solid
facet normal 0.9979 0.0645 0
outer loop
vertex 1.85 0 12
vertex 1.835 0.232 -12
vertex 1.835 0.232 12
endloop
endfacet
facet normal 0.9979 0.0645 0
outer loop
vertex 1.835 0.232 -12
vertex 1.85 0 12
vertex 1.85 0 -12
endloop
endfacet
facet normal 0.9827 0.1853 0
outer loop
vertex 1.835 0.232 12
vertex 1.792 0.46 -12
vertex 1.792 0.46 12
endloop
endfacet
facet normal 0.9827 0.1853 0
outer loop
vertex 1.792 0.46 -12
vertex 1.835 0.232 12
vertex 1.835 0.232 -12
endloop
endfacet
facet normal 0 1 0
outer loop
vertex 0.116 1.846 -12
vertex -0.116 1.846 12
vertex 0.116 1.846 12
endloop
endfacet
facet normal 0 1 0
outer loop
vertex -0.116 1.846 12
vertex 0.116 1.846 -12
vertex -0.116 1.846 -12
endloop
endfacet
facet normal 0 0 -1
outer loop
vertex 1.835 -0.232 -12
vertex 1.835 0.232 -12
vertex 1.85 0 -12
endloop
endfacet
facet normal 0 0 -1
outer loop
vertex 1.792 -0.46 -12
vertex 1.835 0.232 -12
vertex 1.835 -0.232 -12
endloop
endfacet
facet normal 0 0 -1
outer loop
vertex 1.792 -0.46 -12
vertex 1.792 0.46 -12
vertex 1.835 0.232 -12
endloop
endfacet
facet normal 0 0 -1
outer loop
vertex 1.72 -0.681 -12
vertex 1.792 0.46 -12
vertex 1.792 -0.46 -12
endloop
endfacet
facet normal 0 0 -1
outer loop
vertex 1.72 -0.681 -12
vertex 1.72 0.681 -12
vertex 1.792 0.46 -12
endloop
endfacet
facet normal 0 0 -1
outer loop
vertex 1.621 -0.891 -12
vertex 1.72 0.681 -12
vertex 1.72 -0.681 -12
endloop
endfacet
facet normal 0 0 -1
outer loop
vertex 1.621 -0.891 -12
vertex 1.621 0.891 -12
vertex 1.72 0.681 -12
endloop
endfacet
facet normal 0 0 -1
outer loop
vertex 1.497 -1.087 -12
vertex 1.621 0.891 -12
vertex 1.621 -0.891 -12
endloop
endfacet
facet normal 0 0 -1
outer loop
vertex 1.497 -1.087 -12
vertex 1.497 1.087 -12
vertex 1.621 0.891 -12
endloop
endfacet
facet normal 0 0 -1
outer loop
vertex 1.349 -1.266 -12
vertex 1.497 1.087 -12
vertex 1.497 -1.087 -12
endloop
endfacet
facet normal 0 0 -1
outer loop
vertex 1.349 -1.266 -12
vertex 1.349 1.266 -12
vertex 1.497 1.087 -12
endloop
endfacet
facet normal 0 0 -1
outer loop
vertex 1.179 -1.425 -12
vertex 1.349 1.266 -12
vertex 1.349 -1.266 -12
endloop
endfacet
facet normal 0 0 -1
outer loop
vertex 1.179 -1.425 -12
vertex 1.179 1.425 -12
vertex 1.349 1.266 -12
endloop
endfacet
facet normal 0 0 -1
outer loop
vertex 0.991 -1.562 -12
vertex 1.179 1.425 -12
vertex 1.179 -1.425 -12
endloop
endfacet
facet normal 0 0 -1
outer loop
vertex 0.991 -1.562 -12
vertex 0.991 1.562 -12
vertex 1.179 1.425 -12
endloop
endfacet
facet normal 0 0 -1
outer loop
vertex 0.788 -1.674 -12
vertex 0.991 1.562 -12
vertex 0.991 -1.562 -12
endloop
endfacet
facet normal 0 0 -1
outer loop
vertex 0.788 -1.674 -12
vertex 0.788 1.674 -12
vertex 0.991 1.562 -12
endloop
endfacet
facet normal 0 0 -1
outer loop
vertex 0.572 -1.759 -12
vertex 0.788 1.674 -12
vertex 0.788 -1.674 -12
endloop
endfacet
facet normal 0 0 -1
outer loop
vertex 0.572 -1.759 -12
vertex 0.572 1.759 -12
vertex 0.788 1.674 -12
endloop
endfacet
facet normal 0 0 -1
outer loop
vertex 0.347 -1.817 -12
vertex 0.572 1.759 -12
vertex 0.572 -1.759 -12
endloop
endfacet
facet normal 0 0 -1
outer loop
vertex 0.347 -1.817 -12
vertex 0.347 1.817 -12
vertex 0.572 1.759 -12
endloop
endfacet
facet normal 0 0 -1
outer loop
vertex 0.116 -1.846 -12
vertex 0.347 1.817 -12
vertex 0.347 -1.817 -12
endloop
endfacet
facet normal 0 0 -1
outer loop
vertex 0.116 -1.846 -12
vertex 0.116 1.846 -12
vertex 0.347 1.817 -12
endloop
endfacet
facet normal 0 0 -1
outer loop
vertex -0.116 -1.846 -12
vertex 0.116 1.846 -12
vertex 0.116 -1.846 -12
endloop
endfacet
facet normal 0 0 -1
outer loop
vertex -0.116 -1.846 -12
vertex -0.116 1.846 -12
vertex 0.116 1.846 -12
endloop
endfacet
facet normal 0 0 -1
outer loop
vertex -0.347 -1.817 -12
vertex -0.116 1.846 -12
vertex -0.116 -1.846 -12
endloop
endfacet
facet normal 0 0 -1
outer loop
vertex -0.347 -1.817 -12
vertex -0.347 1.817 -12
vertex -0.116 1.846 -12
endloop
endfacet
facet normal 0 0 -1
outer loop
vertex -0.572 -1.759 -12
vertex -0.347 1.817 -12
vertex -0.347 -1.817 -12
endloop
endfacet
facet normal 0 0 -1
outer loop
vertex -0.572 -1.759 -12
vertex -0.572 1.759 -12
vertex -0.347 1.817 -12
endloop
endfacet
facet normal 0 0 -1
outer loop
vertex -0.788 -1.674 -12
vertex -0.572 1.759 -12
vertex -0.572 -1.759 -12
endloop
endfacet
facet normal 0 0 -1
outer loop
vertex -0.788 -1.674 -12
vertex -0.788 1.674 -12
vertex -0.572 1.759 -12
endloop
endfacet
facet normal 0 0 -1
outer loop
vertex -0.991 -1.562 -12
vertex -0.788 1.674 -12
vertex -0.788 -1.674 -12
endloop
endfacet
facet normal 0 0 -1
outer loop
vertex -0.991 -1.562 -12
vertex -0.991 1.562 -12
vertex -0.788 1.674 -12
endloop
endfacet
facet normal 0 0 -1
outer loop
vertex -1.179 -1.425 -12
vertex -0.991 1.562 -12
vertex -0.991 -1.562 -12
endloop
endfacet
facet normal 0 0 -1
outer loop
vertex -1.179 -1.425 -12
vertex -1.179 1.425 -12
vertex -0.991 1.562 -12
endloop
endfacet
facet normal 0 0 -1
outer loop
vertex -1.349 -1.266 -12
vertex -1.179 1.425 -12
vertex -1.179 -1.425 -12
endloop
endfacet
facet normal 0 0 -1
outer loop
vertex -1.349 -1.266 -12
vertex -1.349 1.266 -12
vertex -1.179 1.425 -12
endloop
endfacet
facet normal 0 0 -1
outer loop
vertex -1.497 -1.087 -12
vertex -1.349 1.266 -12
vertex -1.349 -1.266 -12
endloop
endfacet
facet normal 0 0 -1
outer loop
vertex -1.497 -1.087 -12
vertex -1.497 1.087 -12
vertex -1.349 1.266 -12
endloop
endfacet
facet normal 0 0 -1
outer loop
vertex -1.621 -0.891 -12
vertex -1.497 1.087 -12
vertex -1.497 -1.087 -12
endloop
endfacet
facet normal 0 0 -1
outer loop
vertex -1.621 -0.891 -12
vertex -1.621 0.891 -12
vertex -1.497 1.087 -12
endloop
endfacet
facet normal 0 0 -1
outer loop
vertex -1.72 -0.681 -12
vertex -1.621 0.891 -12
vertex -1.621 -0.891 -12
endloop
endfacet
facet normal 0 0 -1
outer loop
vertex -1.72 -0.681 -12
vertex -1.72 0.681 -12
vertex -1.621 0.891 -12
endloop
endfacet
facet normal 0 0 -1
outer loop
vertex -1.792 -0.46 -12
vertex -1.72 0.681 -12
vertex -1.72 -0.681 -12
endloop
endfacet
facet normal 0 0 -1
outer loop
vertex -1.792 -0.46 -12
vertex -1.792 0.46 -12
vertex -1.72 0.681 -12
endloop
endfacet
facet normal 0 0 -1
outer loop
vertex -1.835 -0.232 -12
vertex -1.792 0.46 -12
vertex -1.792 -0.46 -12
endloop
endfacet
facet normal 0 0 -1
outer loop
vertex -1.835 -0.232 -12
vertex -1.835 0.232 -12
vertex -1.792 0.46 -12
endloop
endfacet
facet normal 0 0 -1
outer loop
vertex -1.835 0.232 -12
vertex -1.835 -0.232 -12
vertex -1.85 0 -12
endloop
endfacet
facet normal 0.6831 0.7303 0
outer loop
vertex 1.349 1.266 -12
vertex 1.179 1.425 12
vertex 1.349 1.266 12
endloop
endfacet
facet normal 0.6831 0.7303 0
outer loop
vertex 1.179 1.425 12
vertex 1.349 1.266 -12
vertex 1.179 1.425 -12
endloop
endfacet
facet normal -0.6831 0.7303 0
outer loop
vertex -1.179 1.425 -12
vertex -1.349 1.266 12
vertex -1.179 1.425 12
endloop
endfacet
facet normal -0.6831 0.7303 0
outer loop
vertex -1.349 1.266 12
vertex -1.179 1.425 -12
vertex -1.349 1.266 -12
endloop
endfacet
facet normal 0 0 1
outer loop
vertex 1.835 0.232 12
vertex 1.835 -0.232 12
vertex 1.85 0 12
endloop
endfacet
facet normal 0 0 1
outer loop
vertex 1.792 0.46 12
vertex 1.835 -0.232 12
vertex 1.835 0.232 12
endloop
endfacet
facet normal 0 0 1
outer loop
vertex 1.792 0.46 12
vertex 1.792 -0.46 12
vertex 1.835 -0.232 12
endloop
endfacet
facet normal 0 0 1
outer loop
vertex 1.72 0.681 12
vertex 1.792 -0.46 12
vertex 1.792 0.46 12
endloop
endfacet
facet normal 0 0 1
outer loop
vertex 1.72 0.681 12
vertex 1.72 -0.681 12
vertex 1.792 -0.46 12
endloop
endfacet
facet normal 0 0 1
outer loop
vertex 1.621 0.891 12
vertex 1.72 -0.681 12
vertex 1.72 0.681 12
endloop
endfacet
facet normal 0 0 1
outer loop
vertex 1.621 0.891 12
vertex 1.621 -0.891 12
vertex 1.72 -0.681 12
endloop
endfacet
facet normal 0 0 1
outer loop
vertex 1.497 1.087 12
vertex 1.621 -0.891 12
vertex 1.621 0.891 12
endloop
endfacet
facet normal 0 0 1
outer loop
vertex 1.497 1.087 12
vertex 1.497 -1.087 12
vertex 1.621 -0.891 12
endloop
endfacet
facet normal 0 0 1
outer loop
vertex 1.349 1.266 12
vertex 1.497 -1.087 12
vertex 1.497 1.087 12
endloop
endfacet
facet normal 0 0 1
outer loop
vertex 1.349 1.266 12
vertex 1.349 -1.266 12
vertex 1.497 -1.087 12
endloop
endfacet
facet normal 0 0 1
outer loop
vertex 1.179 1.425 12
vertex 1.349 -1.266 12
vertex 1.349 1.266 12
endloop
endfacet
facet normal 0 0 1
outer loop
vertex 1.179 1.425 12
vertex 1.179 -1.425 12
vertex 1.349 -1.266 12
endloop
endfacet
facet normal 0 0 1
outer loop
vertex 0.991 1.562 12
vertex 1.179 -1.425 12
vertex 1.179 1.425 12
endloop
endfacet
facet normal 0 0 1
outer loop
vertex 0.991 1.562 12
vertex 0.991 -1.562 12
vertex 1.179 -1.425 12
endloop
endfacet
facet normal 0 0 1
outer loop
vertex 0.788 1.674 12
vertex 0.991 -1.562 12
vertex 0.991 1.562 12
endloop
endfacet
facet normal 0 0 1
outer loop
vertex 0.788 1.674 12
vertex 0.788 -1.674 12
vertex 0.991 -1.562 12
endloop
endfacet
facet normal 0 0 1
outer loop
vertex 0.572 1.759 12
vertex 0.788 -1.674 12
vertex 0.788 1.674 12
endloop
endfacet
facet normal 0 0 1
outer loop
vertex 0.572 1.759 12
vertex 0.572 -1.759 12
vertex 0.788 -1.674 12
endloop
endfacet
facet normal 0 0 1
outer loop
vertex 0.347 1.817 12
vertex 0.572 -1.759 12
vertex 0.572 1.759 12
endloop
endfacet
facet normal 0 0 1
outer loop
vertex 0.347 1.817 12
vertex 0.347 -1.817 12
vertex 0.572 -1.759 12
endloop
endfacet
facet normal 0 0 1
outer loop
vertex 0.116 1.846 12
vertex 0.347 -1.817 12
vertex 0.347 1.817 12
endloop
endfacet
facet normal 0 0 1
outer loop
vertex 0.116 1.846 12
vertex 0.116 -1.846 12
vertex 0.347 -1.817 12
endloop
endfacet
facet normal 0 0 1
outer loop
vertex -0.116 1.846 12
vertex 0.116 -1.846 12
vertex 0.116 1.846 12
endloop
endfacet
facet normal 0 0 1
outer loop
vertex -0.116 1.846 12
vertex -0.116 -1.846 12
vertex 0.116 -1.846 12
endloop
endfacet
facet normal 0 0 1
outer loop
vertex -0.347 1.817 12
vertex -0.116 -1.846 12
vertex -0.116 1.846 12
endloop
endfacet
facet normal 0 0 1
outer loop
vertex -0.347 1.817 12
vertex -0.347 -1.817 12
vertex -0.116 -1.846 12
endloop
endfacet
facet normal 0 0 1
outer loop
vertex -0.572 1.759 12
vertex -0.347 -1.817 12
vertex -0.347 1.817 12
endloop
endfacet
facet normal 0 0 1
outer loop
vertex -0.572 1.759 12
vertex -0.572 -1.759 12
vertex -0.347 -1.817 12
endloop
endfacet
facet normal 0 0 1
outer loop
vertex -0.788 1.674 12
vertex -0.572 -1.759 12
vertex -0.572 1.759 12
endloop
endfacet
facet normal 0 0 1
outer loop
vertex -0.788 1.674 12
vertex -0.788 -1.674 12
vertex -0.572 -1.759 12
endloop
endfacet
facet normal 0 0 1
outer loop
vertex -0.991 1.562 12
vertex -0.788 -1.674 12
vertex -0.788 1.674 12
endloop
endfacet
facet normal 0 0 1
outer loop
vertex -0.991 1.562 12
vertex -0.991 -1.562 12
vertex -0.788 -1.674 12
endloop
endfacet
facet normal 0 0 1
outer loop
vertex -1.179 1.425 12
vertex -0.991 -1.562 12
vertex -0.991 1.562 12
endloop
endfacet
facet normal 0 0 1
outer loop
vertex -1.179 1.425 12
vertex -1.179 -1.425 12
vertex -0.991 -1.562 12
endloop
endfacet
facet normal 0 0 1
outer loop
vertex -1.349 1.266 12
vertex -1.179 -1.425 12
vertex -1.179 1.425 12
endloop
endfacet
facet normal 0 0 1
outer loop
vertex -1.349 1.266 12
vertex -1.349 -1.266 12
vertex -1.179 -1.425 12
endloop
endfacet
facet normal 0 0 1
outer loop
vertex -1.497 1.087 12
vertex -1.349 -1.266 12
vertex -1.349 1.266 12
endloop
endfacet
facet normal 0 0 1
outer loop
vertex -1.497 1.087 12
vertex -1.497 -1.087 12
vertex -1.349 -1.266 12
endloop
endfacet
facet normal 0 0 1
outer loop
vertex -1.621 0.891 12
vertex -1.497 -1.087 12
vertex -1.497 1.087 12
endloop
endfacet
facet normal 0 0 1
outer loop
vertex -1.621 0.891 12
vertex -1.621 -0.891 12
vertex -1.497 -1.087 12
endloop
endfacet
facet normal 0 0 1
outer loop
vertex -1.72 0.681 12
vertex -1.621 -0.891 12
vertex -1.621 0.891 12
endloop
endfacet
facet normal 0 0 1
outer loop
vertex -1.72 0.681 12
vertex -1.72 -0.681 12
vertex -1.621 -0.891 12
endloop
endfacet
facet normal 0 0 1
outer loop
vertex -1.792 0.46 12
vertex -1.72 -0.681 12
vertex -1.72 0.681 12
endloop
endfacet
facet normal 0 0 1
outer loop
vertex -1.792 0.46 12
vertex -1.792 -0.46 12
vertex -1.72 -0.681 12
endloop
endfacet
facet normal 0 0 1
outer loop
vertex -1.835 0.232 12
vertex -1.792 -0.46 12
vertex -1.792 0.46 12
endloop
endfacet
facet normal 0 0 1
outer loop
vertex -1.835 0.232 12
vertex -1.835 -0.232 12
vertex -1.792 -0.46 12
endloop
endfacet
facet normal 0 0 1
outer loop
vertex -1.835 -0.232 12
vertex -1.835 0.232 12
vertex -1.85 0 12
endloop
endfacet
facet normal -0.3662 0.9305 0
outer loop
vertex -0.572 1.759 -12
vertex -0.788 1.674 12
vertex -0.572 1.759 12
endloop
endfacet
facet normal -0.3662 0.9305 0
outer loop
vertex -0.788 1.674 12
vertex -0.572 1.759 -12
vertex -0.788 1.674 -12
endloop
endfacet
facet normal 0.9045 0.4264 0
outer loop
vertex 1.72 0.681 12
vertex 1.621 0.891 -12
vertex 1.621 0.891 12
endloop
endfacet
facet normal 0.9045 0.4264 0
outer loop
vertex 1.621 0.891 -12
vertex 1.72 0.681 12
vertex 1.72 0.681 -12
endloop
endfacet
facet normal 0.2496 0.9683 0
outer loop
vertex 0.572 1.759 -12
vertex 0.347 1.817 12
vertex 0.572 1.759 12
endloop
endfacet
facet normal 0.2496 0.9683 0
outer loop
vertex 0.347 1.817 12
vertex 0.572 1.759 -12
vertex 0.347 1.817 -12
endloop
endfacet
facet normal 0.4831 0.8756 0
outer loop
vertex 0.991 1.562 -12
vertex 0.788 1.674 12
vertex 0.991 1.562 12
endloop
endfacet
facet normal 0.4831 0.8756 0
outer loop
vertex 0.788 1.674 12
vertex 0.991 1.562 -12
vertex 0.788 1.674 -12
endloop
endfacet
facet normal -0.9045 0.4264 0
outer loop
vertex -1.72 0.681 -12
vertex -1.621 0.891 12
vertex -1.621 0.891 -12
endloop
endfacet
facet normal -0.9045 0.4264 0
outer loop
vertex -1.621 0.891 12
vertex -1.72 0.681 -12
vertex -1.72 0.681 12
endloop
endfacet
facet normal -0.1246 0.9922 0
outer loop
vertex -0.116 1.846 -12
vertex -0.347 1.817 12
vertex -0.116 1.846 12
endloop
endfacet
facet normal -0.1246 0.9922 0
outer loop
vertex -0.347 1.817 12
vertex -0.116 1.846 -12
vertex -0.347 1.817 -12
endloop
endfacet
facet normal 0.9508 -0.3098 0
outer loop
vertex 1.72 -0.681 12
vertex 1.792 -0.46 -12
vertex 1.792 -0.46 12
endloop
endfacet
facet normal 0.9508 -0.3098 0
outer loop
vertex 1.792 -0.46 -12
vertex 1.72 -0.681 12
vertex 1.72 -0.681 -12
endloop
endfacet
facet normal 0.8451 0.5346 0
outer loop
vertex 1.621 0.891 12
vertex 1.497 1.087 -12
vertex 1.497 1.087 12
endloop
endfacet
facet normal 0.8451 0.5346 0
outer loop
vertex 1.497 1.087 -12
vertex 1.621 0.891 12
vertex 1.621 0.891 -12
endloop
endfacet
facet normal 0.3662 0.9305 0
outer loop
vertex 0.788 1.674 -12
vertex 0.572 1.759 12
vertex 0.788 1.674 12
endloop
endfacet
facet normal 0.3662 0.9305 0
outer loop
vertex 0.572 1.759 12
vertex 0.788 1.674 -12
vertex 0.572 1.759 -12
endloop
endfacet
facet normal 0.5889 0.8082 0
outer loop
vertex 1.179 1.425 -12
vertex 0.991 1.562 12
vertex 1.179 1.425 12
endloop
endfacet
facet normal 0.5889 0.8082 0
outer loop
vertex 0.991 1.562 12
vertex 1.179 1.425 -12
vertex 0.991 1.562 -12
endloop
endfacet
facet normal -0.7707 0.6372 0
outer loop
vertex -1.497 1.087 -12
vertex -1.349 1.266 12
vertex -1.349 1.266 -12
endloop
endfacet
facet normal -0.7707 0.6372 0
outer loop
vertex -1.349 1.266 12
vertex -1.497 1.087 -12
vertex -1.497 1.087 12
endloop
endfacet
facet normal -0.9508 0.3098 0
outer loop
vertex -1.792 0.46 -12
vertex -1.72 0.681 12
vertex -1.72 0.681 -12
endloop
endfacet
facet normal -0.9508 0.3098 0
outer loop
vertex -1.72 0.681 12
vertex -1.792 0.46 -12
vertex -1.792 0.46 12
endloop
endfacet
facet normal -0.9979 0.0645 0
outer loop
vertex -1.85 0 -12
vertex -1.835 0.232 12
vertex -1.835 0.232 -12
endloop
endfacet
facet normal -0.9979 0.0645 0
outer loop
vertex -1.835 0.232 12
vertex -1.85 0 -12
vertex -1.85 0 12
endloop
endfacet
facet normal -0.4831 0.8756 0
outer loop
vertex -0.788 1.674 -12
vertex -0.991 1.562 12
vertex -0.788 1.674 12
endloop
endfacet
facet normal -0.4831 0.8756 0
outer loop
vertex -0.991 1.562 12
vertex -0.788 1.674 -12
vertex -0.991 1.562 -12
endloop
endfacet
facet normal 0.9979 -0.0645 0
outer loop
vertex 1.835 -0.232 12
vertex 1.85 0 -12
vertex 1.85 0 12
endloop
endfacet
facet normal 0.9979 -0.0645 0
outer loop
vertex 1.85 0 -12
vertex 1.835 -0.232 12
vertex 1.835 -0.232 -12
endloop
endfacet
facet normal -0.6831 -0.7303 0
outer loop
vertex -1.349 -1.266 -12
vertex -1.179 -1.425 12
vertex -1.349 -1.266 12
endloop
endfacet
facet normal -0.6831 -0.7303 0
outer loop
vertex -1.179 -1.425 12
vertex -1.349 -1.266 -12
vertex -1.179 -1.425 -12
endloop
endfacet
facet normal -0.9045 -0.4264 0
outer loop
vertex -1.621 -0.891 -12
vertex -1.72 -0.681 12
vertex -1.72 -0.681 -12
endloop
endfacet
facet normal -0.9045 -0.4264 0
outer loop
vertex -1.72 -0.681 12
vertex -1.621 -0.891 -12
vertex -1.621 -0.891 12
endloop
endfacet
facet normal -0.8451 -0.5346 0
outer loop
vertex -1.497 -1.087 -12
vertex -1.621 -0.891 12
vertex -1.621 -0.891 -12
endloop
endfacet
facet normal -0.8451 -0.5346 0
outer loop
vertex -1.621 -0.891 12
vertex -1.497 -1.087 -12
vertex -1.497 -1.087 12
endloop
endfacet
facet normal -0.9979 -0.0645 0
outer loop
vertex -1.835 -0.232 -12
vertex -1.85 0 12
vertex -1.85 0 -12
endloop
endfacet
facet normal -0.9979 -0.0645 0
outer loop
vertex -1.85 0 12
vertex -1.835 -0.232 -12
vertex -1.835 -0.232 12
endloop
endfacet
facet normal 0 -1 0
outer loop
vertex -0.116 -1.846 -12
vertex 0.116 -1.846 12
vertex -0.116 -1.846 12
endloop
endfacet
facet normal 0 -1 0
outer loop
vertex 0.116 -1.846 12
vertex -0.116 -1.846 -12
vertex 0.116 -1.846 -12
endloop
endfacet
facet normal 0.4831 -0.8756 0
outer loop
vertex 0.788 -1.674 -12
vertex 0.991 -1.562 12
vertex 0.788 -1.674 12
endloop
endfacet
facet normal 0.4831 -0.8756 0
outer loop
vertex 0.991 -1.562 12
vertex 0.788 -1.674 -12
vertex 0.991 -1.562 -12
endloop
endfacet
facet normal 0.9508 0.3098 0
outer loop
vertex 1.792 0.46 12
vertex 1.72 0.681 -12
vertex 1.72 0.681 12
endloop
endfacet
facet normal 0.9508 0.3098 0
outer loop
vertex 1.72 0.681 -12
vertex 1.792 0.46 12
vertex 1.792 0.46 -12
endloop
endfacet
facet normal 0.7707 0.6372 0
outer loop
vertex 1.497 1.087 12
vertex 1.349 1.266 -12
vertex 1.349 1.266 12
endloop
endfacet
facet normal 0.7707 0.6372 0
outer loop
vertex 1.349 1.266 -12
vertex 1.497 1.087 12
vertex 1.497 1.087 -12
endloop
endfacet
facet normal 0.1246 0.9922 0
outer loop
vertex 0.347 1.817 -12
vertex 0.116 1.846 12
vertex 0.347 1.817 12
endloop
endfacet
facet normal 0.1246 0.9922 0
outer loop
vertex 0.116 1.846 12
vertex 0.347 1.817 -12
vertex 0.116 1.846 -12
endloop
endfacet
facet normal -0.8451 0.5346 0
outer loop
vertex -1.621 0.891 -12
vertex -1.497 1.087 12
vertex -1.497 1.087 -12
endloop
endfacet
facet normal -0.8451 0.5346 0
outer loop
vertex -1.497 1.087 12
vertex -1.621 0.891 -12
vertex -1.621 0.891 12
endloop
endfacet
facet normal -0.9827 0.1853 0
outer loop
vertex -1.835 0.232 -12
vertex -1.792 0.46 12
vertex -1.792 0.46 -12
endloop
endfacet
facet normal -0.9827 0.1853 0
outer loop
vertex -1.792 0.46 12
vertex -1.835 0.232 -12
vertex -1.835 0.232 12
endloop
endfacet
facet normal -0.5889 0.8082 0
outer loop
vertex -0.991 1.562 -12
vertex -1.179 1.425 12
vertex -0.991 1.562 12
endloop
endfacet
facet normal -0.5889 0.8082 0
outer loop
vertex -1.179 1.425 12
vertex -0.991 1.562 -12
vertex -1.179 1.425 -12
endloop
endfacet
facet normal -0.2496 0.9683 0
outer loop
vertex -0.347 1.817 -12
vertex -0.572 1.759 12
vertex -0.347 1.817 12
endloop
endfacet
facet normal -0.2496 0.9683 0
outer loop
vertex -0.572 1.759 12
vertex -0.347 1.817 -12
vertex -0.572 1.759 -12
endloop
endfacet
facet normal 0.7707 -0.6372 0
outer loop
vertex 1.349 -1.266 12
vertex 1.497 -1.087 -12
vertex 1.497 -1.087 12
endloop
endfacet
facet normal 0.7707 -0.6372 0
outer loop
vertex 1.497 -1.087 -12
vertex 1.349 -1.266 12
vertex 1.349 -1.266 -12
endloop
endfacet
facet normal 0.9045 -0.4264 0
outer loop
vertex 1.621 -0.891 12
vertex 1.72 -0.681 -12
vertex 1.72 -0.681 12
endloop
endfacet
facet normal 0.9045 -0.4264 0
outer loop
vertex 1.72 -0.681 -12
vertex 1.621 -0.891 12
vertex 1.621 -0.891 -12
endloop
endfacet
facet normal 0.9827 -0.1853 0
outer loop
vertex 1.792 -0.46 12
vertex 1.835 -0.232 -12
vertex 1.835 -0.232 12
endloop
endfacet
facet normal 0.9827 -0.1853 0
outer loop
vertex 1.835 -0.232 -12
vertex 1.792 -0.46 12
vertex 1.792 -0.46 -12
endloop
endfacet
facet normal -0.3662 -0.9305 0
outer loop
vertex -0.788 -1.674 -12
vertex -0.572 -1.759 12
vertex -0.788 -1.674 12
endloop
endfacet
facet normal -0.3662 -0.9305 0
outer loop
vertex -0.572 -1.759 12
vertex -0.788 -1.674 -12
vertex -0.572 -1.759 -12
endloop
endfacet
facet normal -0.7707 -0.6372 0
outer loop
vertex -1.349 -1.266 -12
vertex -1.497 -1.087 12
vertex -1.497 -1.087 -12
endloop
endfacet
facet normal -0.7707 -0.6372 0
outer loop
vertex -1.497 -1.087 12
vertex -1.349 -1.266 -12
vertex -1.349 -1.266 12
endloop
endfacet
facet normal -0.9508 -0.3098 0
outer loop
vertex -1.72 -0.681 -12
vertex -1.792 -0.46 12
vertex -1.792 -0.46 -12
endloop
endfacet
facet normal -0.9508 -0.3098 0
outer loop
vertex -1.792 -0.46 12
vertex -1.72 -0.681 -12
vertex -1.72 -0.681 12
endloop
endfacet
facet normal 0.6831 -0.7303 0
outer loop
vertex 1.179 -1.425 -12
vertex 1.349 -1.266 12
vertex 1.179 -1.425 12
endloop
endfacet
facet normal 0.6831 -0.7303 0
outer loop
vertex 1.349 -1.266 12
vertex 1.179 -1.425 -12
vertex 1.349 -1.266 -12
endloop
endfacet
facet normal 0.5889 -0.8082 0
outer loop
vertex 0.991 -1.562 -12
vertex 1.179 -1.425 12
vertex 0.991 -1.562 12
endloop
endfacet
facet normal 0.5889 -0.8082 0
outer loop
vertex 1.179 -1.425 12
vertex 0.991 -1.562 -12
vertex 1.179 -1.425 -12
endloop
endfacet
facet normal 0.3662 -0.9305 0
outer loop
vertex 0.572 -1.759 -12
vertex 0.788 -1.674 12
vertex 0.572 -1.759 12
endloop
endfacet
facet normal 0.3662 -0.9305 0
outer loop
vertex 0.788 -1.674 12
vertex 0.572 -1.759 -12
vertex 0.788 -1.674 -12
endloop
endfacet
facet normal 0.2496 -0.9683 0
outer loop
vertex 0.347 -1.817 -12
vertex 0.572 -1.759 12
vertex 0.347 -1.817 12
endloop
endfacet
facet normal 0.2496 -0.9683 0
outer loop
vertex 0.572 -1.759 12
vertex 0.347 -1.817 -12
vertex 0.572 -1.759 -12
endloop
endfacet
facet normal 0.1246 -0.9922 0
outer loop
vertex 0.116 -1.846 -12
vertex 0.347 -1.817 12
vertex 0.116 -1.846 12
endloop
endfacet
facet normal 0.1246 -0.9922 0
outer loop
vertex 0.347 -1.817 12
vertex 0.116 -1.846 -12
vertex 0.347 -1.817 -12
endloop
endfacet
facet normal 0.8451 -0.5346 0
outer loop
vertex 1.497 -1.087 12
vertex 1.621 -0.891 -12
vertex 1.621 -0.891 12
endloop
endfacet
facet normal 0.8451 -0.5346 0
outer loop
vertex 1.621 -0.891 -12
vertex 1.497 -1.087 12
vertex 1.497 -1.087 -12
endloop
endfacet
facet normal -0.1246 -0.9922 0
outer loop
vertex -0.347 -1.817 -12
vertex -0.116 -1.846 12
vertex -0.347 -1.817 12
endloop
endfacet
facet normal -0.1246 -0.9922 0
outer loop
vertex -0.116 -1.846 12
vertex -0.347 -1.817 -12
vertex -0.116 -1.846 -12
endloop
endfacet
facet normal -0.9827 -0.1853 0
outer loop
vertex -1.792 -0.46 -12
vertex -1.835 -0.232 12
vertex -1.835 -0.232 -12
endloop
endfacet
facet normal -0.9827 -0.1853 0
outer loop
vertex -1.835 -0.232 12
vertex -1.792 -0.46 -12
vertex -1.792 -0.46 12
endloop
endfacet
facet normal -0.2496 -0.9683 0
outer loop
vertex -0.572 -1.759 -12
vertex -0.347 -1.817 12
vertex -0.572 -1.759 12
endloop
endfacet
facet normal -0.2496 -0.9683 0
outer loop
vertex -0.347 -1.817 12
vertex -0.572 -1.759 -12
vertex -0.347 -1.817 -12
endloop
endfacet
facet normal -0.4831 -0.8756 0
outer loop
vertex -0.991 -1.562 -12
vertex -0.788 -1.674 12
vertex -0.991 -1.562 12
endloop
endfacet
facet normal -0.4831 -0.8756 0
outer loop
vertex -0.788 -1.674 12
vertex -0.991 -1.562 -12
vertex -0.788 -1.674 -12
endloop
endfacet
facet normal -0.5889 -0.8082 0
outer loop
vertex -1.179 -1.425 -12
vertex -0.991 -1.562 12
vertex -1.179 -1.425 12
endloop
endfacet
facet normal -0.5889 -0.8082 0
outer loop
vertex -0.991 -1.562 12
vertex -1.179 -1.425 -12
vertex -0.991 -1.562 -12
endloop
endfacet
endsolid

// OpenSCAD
$fn = 50;


difference() {
	union() {
		translate(v = [0, 0, -12.0000000000]) {
			cylinder(h = 24, r = 1.8500000000);
		}
	}
	union() {
		translate(v = [0, 0, -100.0000000000]) {
			cylinder(h = 200, r = 0);
		}
	}
}
